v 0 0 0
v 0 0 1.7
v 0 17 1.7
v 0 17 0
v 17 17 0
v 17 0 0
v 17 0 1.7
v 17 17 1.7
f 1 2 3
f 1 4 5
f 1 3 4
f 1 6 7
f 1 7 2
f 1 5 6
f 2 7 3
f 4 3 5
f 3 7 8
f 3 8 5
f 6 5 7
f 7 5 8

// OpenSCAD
/* Warning, this is a very basic generator with a lot of approximation 
input data : [FCCSP, 3KW, 17x17x1.7mm, 356, , A, C04-00564A]
generated by com.zoubworld.electronics.cad.model3d.Basic
Date : Sun Feb 15 10:50:49 CET 2026
*/

//body
color("black")
translate([0,0,0])
cube([17.0,17.0,1.7], center=false);
